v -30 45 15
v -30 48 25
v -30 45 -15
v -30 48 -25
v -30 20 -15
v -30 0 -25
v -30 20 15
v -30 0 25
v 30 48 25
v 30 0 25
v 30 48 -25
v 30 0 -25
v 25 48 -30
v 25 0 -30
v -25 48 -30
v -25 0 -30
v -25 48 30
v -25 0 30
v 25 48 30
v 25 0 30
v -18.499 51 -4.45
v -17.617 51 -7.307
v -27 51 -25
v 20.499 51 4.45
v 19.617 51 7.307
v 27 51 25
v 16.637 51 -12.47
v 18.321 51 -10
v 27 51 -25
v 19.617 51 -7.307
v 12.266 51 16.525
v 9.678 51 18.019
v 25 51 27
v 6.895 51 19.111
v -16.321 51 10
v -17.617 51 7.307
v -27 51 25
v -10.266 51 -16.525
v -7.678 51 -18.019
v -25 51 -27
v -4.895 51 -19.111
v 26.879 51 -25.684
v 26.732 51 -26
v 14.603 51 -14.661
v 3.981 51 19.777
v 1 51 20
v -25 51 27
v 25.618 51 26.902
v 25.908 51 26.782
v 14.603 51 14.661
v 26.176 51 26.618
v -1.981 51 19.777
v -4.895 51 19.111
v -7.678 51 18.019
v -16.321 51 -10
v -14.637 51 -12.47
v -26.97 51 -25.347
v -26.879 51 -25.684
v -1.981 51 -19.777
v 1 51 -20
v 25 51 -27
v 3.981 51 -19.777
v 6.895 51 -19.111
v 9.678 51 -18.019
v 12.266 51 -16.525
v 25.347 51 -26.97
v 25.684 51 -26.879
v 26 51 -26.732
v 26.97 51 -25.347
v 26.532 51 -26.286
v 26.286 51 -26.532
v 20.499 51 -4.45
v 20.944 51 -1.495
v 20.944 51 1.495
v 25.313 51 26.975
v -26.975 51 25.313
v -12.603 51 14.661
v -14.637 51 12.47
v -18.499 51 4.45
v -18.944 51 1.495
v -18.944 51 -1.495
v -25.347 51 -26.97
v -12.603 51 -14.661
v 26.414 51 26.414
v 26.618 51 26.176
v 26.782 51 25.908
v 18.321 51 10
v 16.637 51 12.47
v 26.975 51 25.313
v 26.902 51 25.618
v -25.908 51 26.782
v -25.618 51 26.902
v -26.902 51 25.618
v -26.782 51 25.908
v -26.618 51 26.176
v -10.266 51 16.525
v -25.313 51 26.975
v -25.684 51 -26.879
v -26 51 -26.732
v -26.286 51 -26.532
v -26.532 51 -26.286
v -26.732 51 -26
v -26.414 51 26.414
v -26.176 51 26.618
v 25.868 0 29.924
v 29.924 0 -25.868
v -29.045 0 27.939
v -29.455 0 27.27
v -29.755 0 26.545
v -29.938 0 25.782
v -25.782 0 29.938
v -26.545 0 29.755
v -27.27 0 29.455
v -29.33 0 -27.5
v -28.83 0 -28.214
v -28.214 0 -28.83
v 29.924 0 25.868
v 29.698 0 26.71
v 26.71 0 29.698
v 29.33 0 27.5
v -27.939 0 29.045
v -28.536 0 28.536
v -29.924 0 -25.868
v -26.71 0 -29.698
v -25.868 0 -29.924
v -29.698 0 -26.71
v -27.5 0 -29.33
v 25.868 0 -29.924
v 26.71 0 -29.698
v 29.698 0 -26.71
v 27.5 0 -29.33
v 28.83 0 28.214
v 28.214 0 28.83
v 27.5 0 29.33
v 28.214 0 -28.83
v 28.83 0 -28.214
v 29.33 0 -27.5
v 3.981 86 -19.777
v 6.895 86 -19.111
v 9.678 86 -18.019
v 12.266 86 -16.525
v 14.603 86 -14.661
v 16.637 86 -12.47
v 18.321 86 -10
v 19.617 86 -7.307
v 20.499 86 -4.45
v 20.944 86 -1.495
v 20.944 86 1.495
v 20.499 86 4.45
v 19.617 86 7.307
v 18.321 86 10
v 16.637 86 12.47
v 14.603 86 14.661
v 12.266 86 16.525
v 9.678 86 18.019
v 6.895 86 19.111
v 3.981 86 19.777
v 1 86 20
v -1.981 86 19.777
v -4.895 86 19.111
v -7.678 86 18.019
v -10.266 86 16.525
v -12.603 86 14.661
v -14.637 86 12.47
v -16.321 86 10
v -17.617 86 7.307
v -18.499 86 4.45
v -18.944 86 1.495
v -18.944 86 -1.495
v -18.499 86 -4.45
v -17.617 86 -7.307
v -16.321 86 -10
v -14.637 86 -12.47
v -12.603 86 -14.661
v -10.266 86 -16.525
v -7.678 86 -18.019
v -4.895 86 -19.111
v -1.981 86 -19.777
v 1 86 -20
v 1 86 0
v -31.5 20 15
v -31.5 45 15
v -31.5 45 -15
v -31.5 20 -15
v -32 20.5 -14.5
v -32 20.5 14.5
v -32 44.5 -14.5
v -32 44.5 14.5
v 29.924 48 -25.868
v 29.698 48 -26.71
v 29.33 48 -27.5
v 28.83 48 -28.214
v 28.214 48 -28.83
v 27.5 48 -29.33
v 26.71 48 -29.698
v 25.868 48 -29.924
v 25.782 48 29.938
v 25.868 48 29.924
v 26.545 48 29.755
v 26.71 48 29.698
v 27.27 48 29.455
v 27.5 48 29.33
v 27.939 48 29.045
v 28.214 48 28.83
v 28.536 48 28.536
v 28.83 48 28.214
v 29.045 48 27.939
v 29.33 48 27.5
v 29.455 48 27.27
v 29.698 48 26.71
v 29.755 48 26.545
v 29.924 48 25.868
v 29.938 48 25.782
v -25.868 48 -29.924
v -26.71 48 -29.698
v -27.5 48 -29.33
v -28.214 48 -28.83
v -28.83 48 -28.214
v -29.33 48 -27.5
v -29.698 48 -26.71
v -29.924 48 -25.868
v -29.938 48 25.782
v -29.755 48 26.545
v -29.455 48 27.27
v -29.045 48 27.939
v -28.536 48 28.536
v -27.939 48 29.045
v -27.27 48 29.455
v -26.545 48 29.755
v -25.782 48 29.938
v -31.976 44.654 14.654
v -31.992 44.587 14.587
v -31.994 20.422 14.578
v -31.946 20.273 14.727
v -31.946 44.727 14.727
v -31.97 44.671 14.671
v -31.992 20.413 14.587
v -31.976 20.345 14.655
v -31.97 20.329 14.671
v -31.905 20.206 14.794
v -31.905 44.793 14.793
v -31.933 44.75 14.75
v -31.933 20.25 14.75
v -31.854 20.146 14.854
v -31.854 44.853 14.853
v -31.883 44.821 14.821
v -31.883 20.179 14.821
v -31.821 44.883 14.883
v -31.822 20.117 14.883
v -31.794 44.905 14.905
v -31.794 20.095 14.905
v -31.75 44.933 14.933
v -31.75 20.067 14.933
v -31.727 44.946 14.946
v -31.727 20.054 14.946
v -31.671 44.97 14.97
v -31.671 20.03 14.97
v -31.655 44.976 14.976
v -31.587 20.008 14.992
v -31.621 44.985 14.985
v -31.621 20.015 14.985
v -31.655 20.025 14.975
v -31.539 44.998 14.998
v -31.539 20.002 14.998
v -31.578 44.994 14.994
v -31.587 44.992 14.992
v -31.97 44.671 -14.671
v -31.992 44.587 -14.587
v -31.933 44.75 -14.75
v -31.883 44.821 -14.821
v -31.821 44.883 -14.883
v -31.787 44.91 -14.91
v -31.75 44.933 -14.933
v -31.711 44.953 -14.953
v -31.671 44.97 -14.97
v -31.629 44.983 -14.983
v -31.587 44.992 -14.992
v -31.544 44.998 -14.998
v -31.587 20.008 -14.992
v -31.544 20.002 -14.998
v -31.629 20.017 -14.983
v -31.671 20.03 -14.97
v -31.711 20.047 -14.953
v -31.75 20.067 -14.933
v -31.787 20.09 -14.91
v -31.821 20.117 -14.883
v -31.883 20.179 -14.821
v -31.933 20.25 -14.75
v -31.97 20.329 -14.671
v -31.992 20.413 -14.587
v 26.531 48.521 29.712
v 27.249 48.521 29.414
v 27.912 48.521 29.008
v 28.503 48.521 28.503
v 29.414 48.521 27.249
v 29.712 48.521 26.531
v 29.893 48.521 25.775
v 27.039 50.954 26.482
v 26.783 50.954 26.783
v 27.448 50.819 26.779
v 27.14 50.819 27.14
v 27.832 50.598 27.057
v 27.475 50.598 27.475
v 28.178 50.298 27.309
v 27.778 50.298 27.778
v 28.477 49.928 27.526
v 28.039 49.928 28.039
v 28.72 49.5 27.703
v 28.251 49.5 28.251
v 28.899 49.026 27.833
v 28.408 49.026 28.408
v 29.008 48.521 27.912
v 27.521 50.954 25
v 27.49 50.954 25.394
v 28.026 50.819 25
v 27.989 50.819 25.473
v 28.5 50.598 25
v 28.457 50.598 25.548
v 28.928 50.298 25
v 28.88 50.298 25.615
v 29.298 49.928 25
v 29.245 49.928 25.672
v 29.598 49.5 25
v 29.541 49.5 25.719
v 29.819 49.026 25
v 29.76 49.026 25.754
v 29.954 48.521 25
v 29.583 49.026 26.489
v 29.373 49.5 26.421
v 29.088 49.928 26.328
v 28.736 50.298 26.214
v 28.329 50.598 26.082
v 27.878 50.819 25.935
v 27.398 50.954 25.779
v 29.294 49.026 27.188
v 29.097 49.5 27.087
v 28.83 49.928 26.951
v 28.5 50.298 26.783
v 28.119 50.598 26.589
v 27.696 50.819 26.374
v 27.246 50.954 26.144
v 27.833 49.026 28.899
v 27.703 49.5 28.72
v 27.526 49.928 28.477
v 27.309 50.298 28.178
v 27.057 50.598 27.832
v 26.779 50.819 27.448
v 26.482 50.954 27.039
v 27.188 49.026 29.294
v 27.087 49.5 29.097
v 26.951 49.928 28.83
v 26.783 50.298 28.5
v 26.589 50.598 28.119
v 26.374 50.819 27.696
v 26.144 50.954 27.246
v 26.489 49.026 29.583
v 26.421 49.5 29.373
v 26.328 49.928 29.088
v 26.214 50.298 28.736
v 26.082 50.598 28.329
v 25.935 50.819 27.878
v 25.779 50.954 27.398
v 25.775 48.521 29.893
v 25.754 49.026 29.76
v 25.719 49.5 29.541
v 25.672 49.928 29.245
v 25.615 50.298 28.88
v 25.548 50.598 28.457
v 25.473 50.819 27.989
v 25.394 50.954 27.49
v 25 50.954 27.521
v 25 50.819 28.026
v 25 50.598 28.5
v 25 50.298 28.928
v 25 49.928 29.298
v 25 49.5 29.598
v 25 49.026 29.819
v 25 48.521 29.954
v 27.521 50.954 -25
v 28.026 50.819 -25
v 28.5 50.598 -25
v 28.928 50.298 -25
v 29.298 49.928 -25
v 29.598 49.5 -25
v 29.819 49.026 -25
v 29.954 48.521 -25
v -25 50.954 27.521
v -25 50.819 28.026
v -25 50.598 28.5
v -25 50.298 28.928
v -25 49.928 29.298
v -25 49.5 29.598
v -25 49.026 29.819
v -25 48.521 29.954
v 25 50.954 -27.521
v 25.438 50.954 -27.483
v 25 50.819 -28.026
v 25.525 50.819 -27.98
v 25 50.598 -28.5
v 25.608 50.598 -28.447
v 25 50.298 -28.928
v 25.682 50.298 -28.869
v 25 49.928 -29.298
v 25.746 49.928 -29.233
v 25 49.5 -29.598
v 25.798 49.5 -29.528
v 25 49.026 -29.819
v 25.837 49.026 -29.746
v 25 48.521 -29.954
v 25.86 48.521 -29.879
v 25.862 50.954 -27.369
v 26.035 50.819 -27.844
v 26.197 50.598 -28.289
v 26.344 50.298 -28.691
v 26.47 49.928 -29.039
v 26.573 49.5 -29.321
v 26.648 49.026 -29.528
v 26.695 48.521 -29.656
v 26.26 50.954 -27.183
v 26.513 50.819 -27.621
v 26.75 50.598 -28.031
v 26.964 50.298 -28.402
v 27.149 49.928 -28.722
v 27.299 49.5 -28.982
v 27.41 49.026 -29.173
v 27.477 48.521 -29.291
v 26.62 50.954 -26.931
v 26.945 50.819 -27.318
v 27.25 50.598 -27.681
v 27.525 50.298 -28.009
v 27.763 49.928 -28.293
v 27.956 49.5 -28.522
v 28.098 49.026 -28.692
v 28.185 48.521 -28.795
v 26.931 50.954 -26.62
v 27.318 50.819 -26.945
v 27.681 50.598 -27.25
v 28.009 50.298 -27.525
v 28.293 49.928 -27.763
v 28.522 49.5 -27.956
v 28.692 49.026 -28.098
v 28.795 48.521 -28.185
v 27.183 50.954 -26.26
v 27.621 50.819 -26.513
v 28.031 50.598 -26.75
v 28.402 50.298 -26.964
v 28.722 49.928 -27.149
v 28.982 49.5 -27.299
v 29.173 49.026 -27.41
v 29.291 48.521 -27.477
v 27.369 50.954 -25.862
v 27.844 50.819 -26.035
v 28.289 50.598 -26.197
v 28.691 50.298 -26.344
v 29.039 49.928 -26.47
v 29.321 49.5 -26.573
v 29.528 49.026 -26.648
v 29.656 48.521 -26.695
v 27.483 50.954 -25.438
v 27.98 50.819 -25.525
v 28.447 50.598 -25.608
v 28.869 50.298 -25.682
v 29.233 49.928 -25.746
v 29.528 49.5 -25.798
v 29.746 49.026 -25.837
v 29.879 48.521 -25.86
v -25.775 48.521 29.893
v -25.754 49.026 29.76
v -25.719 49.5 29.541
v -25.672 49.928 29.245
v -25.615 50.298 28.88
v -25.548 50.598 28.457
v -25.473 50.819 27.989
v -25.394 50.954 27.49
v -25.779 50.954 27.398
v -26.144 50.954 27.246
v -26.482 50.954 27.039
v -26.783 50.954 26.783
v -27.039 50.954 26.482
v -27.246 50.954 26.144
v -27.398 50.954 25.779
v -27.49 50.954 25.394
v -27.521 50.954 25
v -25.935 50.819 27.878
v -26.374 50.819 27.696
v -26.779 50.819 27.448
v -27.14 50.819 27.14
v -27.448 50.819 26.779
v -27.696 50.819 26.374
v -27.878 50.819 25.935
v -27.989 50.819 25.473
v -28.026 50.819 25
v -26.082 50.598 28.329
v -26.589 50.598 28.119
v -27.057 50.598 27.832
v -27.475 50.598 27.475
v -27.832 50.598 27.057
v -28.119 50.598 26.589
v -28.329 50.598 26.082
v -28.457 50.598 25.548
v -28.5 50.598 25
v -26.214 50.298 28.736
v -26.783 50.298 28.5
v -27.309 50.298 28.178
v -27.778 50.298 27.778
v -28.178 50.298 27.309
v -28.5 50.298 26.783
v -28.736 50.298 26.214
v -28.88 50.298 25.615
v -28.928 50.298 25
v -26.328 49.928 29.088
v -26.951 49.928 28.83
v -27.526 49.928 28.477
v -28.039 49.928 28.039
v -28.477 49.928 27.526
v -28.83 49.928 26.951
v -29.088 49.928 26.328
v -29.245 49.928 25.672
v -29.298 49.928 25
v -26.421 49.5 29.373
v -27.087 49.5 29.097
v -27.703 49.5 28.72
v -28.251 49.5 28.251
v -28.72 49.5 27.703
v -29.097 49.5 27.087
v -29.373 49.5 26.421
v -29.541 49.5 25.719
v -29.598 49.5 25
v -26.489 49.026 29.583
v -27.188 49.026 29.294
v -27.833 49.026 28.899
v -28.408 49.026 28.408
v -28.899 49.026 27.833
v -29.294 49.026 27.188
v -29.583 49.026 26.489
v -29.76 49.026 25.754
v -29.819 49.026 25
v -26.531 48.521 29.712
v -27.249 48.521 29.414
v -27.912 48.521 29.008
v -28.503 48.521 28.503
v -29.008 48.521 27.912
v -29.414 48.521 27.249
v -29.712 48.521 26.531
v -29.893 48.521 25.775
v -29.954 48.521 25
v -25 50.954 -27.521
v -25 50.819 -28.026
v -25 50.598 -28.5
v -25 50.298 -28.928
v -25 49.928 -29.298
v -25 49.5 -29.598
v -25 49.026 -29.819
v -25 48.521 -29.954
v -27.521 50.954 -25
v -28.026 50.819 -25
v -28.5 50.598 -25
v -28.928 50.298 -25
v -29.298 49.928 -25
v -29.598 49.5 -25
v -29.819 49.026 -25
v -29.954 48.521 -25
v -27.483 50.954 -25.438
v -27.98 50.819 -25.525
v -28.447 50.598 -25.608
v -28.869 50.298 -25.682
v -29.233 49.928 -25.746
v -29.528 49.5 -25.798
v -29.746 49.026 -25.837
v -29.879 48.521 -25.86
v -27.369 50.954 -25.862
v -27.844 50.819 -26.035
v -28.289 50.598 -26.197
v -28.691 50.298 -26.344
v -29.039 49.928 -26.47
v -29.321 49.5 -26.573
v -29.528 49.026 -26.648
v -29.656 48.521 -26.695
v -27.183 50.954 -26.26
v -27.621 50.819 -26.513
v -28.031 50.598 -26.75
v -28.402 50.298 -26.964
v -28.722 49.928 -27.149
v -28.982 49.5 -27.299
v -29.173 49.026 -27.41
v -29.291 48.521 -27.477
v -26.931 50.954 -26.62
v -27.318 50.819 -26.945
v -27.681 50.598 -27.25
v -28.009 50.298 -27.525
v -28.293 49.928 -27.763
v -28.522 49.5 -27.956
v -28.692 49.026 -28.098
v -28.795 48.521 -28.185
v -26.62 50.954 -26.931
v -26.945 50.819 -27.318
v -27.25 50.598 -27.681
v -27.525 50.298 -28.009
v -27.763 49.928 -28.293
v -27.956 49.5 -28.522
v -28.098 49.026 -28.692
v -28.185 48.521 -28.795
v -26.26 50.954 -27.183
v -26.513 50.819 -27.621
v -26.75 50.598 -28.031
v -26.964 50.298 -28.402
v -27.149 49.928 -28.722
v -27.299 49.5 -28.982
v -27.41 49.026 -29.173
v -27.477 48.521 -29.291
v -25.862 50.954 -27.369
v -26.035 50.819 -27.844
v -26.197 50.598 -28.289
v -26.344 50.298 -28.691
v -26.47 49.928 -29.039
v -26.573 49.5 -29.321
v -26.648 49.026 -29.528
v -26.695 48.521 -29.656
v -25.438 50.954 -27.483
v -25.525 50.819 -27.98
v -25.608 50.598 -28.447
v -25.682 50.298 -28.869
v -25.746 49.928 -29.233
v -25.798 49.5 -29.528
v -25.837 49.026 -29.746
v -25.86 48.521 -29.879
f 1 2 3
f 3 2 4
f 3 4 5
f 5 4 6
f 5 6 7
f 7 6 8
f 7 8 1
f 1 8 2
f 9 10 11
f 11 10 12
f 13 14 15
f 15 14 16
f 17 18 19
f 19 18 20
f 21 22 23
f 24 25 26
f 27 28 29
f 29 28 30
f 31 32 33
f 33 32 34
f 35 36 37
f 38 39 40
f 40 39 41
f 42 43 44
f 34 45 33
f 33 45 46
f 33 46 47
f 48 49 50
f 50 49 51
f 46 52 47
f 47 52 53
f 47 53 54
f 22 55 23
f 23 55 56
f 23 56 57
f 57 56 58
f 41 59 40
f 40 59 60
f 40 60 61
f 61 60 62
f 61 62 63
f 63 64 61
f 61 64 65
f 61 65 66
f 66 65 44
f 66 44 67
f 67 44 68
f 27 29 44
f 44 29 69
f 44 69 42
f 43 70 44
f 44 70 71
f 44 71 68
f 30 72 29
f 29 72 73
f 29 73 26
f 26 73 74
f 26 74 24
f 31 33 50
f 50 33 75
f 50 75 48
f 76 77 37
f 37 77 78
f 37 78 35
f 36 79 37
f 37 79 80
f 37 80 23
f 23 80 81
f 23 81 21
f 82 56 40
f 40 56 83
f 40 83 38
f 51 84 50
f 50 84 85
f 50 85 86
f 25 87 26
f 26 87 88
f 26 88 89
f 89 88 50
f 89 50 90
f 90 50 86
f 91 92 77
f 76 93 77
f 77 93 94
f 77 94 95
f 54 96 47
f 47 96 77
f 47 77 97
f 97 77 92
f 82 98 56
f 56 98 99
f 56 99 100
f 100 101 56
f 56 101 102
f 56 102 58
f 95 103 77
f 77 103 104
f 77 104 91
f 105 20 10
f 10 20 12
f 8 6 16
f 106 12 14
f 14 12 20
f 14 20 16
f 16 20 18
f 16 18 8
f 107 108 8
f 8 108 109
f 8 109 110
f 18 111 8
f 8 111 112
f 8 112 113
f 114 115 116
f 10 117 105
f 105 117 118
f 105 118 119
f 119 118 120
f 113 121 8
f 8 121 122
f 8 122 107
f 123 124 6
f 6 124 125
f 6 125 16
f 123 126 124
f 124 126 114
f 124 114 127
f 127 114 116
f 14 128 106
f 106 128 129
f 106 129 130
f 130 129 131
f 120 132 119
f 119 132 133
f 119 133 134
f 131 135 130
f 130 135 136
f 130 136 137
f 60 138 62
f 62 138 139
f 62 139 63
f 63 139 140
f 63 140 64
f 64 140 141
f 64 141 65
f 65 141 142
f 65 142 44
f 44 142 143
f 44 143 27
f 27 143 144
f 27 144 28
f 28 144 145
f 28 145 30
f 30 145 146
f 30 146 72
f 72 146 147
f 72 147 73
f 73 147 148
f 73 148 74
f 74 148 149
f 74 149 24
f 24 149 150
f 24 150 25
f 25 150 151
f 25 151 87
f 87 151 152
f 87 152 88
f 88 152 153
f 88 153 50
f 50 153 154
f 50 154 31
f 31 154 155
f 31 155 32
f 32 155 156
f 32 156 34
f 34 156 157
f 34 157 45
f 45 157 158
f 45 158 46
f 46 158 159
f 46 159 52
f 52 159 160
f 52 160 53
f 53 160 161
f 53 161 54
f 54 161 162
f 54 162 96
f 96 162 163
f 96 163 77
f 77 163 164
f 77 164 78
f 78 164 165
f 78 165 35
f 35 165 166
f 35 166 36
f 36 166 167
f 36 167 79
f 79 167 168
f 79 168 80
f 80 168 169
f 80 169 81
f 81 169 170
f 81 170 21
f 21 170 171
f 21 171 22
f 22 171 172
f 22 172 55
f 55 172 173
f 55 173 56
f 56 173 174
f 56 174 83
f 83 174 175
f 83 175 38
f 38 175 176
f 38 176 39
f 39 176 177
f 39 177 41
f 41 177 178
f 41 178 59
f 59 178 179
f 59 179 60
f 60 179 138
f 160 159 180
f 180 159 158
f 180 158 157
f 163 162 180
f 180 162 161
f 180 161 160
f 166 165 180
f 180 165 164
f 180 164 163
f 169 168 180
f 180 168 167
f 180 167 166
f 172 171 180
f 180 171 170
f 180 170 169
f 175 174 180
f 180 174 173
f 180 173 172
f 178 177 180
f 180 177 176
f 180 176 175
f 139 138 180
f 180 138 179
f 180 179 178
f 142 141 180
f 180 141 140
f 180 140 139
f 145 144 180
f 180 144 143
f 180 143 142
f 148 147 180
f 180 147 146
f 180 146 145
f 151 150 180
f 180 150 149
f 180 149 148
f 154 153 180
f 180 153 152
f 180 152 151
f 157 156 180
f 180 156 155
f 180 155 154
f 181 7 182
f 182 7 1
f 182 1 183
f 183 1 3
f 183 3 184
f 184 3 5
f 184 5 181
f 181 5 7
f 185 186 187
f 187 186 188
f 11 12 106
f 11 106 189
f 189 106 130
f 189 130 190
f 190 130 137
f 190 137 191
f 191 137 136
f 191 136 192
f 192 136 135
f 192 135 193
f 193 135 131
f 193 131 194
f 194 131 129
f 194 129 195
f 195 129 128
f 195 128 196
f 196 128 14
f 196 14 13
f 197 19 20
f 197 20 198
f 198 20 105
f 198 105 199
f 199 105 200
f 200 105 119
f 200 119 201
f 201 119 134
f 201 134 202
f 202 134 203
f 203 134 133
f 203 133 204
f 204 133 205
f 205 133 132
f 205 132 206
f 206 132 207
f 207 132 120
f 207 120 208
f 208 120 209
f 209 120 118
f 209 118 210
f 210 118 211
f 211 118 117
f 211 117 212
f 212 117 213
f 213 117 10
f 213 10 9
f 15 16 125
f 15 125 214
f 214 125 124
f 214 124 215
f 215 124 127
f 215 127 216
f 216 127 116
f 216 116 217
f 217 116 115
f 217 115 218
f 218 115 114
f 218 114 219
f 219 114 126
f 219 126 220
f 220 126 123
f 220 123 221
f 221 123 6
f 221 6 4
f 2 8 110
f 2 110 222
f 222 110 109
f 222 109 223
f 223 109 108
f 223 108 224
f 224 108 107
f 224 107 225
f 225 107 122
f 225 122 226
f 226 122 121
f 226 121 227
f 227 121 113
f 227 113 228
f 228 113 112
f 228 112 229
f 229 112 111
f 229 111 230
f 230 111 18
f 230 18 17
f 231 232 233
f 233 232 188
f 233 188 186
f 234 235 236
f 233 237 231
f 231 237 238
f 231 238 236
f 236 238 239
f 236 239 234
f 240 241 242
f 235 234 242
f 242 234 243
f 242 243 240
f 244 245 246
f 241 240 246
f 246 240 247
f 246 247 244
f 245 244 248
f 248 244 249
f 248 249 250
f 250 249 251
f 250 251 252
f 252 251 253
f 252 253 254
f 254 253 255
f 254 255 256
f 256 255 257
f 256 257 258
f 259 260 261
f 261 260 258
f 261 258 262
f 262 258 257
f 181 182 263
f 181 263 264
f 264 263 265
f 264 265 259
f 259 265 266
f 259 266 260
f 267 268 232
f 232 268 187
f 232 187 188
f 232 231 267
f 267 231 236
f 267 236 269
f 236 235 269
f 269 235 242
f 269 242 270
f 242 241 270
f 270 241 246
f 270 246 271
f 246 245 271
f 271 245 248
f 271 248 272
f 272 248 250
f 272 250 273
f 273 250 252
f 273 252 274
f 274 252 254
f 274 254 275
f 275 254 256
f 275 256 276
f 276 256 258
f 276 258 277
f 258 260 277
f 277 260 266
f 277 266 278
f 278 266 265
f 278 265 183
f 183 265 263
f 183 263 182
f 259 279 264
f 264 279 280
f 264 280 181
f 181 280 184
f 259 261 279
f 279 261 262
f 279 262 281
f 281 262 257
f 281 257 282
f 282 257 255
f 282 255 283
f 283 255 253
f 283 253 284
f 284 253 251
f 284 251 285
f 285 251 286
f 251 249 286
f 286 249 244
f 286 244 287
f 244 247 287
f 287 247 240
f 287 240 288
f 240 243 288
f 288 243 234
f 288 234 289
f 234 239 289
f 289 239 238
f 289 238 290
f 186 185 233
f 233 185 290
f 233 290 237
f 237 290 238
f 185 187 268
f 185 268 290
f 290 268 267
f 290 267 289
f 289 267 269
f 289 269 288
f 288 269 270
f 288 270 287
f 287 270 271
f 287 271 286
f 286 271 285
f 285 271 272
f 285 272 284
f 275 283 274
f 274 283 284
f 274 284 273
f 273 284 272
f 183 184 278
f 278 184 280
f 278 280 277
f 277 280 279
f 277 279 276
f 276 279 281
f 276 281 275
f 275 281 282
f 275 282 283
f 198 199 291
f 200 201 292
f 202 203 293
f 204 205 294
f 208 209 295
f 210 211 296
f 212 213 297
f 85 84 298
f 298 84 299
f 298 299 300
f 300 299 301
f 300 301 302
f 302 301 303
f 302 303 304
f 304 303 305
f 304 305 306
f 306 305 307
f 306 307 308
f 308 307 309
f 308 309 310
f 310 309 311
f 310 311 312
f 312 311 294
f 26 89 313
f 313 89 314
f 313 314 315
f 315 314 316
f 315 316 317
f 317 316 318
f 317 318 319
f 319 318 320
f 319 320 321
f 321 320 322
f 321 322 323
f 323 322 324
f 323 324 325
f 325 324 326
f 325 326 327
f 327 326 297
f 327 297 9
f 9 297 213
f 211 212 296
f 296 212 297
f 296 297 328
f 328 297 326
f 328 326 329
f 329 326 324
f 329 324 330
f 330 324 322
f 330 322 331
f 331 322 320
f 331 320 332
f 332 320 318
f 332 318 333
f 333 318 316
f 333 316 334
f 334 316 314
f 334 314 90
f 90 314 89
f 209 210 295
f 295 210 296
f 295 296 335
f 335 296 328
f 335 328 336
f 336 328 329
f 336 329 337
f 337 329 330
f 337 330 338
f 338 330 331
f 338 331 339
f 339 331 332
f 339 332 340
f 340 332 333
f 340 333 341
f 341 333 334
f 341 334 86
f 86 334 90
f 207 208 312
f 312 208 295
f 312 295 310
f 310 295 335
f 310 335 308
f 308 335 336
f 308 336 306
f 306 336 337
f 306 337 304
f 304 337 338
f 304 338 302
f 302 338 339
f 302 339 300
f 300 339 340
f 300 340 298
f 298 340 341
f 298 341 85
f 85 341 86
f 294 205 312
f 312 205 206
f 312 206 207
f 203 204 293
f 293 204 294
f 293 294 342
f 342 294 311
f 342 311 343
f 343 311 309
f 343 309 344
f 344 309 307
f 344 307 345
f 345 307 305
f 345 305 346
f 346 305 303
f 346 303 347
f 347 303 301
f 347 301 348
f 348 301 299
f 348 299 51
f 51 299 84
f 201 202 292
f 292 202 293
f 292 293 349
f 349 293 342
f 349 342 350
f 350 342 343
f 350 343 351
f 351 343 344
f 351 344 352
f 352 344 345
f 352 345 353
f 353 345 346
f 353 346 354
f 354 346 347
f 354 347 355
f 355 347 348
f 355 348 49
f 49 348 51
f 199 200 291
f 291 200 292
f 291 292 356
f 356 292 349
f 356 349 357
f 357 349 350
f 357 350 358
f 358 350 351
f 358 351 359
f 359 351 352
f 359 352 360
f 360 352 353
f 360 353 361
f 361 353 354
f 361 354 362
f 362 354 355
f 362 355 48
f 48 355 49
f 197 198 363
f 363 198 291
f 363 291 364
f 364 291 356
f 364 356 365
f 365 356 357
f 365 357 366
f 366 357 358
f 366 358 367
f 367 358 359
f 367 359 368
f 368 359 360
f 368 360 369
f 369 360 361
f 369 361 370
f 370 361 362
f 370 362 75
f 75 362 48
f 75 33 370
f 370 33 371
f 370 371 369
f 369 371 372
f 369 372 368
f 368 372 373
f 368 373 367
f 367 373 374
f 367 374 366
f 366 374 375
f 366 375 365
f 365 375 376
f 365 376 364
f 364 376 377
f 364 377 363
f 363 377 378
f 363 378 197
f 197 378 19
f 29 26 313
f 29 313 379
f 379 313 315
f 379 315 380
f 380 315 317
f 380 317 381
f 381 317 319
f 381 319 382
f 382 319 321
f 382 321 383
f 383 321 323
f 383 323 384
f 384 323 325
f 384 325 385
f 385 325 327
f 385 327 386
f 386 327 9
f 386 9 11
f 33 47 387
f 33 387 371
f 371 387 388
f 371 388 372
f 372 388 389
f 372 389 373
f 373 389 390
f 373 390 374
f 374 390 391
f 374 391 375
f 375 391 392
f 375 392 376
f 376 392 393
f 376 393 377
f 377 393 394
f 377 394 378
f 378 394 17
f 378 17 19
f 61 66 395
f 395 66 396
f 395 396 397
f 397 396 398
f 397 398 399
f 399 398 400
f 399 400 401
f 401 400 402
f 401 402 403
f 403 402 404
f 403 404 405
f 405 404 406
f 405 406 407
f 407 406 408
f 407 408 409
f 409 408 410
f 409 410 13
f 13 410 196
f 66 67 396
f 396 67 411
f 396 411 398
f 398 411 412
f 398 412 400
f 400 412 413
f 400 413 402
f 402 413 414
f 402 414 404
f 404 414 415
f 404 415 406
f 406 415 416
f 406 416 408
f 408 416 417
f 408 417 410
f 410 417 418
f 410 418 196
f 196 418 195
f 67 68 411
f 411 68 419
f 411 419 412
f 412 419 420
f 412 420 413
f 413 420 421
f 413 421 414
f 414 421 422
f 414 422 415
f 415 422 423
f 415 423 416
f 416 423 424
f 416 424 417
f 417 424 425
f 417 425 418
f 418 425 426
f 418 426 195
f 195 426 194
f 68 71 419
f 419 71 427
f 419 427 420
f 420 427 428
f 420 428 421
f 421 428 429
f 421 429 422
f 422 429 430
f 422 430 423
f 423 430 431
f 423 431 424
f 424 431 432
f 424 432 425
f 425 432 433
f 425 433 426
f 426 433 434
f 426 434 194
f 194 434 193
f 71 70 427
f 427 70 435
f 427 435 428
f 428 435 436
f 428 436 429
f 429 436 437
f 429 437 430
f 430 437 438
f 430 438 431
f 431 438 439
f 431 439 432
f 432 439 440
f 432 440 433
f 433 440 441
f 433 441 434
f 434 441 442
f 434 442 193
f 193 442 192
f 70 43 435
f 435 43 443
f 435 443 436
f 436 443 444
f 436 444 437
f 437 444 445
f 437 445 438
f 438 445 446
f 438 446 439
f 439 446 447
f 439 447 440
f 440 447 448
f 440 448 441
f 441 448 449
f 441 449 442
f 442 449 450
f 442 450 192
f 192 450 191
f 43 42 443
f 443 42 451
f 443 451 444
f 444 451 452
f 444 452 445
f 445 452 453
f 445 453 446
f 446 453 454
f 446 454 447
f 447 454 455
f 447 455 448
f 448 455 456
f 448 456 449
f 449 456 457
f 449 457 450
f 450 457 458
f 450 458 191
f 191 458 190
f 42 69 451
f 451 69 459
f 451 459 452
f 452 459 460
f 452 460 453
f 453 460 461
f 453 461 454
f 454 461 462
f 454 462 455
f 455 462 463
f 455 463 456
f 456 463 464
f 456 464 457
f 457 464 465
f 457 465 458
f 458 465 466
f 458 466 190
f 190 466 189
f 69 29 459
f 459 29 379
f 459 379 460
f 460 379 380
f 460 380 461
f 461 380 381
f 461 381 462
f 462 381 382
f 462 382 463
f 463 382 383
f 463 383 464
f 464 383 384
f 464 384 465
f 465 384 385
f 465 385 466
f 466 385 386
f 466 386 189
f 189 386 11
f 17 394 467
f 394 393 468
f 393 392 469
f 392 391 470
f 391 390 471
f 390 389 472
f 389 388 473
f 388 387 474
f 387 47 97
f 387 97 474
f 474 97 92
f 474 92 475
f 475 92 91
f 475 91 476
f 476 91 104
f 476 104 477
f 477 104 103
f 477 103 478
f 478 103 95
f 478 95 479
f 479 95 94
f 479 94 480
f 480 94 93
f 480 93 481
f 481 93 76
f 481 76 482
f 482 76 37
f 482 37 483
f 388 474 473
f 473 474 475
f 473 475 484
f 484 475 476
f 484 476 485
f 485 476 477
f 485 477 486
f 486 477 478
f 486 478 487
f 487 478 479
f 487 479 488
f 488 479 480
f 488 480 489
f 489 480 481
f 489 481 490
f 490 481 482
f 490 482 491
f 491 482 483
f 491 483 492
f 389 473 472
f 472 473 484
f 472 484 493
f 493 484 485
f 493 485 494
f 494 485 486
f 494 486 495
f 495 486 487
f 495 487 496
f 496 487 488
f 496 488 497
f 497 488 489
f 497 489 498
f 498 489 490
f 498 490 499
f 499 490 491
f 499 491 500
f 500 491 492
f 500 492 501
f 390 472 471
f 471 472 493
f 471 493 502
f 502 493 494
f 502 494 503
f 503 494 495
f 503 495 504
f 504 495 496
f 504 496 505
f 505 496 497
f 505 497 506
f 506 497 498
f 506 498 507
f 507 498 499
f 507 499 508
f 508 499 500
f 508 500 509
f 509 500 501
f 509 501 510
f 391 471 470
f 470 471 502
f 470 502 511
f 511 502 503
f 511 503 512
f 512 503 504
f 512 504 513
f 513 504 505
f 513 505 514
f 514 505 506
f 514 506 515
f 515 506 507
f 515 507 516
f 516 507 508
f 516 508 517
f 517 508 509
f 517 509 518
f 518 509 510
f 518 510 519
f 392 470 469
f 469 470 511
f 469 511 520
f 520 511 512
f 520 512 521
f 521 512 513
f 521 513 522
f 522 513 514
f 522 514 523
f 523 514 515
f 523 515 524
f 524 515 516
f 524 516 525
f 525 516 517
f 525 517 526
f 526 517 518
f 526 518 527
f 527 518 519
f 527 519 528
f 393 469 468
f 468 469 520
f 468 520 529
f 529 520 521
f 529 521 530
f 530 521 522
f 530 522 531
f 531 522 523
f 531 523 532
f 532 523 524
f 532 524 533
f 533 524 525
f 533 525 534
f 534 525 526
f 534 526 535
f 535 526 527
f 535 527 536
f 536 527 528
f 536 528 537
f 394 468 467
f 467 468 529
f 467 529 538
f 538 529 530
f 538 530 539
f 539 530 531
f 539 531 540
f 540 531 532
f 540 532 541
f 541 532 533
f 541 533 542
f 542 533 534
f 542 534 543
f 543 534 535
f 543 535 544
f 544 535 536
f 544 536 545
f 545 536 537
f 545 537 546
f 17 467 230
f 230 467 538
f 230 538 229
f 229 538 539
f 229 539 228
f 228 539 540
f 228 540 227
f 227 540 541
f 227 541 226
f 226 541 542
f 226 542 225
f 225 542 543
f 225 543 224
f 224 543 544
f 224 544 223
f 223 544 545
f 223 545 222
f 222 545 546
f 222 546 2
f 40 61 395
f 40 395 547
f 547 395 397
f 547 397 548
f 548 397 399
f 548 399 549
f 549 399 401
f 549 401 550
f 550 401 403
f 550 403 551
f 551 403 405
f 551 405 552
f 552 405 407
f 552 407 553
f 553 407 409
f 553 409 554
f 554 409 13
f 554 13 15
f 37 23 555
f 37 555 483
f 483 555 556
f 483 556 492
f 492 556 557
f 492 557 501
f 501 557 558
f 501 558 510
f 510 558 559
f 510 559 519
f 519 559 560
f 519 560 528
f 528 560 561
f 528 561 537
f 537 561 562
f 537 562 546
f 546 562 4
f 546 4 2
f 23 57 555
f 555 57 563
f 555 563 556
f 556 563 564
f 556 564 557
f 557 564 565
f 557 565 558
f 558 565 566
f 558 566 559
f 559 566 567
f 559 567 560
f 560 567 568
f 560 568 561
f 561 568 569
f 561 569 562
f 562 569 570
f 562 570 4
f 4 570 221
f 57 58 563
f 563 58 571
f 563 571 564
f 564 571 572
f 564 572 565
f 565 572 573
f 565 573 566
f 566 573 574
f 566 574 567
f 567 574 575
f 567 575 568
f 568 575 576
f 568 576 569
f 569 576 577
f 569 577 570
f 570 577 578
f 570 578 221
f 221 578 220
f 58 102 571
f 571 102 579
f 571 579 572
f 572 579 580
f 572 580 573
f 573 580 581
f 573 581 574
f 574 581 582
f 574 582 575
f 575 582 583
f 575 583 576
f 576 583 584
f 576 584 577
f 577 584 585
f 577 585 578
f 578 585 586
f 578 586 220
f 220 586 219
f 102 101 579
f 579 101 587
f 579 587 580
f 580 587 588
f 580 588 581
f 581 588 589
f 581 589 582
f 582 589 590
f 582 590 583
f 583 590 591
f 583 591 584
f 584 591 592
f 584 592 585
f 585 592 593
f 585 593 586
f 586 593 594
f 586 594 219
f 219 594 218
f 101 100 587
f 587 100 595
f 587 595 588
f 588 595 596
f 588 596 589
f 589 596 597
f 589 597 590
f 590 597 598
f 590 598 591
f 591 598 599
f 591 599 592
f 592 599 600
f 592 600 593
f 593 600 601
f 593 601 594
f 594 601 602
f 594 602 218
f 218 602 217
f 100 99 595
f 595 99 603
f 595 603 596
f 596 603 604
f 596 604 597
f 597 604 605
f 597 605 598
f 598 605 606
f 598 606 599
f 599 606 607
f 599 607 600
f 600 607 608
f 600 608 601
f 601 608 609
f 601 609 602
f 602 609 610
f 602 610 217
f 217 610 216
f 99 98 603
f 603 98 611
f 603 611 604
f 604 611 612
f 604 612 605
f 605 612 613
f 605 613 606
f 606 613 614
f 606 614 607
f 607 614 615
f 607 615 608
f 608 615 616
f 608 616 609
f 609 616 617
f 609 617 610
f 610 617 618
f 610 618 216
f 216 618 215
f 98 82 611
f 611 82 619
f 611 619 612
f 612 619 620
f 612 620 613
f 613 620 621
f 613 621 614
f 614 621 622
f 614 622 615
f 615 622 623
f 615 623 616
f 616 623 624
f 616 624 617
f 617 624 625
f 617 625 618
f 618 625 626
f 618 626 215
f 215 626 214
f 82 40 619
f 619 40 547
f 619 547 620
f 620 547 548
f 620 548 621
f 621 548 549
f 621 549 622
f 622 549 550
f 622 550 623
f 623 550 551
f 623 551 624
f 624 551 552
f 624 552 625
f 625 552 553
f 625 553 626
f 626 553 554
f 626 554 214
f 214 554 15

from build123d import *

# Parameters (mm, degrees)
SKETCH_1_W      = 60
SKETCH_1_H      = 60
EXTRUDE_1_DEPTH = 51
SKETCH_2_R      = 20
EXTRUDE_2_DEPTH = 35
SKETCH_4_W      = 30
SKETCH_4_H      = 25
EXTRUDE_3_DEPTH = 2
FILLET_4_R      = 5
FILLET_5_R      = 0.5
FILLET_6_R      = 3


with BuildPart() as part:
    # 草圖1 → 填料-伸長1 (new body)
    with BuildSketch(Plane(origin=(0, 0, 0), x_dir=(1, 0, 0), z_dir=(0, 1, 0))):
        Rectangle(SKETCH_1_W, SKETCH_1_H)
    extrude(amount=EXTRUDE_1_DEPTH)

    # 草圖2 → 填料-伸長2 (add)
    with BuildSketch(Plane(origin=(0, 51, 0), x_dir=(1, 0, 0), z_dir=(0, 1, 0))):
        with Locations(Location((1, 0, 0), (0, 0, 270))):
            Circle(SKETCH_2_R)
    extrude(amount=EXTRUDE_2_DEPTH)

    # 草圖4 → 填料-伸長3 (add)
    with BuildSketch(Plane.ZY.offset(30)):
        with Locations((0, 32.5)):
            Rectangle(SKETCH_4_W, SKETCH_4_H)
    extrude(amount=EXTRUDE_3_DEPTH)

    # 圓角4
    fillet_4_edges = [part.edges().sort_by_distance(p)[0] for p in [
        (30, 25.5, 30),
        (-30, 25.5, 30),
        (-30, 25.5, -30),
        (30, 25.5, -30),
    ]]
    fillet(fillet_4_edges, radius=FILLET_4_R)

    # 圓角5
    fillet_5_edges = [part.edges().sort_by_distance(p)[0] for p in [
        (-32, 32.5, 15),
        (-32, 45, 0),
        (-32, 32.5, -15),
        (-32, 20, 0),
    ]]
    fillet(fillet_5_edges, radius=FILLET_5_R)

    # 圓角6
    fillet_6_edges = [part.edges().sort_by_distance(p)[0] for p in [
        (0, 51, -30),
        (30, 51, 0),
        (-30, 51, 0),
        (0, 51, 30),
        (-28.535533906, 51, 28.535533906),
        (-28.535533906, 51, -28.535533906),
        (28.535533906, 51, 28.535533906),
        (28.535533906, 51, -28.535533906),
    ]]
    fillet(fillet_6_edges, radius=FILLET_6_R)


solid = part.part
